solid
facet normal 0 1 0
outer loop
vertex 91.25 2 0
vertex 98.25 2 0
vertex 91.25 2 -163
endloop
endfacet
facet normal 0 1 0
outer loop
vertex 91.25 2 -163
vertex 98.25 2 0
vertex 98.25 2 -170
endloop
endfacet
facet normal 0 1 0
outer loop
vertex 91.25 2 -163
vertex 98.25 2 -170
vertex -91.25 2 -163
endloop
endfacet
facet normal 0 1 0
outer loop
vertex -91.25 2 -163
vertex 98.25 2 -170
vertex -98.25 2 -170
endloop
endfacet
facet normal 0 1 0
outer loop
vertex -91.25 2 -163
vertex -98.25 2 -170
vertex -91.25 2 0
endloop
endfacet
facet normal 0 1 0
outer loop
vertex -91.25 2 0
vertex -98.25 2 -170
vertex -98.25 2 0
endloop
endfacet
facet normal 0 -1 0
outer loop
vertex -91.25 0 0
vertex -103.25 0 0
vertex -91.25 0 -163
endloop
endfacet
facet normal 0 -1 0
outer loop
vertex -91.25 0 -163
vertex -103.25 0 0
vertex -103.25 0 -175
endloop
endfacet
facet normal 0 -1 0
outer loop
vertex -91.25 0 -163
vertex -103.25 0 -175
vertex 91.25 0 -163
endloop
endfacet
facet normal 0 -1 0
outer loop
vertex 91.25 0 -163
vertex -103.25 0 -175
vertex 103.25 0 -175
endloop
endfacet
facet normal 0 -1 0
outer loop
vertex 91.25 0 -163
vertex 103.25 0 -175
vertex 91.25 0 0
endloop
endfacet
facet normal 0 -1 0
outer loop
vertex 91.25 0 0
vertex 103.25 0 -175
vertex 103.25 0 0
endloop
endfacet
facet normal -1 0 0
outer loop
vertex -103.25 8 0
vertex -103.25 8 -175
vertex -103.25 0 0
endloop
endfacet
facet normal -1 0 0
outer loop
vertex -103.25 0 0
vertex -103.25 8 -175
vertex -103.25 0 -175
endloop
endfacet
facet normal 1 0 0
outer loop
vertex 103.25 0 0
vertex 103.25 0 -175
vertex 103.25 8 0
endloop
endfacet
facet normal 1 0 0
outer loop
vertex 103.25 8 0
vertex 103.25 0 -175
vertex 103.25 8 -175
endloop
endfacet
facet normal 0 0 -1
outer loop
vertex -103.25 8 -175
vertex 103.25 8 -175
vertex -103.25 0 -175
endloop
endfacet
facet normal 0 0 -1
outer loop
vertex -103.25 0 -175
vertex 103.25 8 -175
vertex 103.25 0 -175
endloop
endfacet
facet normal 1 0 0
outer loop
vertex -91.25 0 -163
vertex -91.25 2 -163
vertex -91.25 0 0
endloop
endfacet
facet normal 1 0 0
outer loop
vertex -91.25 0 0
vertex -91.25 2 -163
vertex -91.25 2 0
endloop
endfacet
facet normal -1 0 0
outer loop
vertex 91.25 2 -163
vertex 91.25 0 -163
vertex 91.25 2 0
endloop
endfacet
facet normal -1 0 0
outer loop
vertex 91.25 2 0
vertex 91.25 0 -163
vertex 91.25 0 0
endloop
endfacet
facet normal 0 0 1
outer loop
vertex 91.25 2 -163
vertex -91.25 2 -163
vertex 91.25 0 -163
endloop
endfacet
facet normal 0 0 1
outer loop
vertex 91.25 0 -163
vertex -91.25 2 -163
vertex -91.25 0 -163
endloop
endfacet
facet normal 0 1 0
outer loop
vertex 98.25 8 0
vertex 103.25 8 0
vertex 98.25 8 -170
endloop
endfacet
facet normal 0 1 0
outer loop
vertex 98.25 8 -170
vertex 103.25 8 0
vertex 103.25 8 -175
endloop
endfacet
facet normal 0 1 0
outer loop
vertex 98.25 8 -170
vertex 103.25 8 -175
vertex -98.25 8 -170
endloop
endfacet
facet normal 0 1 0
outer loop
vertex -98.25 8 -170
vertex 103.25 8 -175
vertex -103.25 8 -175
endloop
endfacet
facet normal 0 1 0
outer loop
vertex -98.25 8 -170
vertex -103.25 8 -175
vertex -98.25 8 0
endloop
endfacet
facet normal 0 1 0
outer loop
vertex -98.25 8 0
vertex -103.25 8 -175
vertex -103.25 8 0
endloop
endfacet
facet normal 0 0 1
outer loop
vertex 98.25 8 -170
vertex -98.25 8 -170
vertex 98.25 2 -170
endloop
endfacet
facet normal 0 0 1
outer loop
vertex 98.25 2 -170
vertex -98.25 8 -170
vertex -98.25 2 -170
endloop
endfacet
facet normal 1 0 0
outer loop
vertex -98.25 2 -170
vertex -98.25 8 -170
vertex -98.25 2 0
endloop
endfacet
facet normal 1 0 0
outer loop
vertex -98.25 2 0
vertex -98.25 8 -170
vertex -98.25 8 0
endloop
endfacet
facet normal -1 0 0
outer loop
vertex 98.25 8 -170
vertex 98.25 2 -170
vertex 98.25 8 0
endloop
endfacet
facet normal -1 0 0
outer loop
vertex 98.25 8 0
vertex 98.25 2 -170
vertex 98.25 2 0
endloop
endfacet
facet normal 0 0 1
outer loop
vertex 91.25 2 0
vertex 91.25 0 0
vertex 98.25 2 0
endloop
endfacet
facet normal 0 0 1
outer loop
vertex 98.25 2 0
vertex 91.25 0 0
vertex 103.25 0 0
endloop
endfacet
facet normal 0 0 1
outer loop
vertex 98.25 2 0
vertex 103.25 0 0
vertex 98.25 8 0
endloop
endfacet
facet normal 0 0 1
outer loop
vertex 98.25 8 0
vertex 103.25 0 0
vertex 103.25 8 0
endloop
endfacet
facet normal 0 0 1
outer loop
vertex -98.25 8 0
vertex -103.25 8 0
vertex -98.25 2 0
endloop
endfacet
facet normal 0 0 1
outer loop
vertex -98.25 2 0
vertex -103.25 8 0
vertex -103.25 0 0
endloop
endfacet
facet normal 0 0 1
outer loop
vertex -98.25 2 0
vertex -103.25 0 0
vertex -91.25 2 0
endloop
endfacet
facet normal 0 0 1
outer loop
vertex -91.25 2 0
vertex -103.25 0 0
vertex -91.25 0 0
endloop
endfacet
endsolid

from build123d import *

# Parameters (mm, degrees)
SKETCH1_W               = 206.5
SKETCH1_H               = 350
SKETCH1_W_2             = 182.5
SKETCH1_H_2             = 326
BOSS_EXTRUDE1_DEPTH     = 2
SKETCH2_W               = 206.5
SKETCH2_H               = 350
SKETCH2_W_2             = 196.5
SKETCH2_H_2             = 340
BOSS_EXTRUDE2_DEPTH     = 6
CUT_EXTRUDE3_DEPTH      = 204.345918326
CUT_EXTRUDE3_DEPTH_BACK = 204.345918326
SKETCH3_W               = 400
SKETCH3_H               = 400


with BuildPart() as part:
    # Sketch1 → Boss-Extrude1 (new body)
    with BuildSketch(Plane(origin=(0, 0, 0), x_dir=(1, 0, 0), z_dir=(0, 1, 0))):
        Rectangle(SKETCH1_W, SKETCH1_H)
        Rectangle(SKETCH1_W_2, SKETCH1_H_2, mode=Mode.SUBTRACT)
    extrude(amount=BOSS_EXTRUDE1_DEPTH)

    # Sketch2 → Boss-Extrude2 (add)
    with BuildSketch(Plane(origin=(0, 2, 0), x_dir=(1, 0, 0), z_dir=(0, 1, 0))):
        Rectangle(SKETCH2_W, SKETCH2_H)
        Rectangle(SKETCH2_W_2, SKETCH2_H_2, mode=Mode.SUBTRACT)
    extrude(amount=BOSS_EXTRUDE2_DEPTH)

    # Sketch3 → Cut-Extrude3 (cut, two sides: drawn at the far end of the back side and taken through both)
    with BuildSketch(Plane(origin=(0, 0, 0), x_dir=(1, 0, 0), z_dir=(0, 1, 0)).offset(-CUT_EXTRUDE3_DEPTH_BACK)):
        with Locations((0, -200)):
            Rectangle(SKETCH3_W, SKETCH3_H)
    extrude(amount=CUT_EXTRUDE3_DEPTH + CUT_EXTRUDE3_DEPTH_BACK, mode=Mode.SUBTRACT)


solid = part.part
